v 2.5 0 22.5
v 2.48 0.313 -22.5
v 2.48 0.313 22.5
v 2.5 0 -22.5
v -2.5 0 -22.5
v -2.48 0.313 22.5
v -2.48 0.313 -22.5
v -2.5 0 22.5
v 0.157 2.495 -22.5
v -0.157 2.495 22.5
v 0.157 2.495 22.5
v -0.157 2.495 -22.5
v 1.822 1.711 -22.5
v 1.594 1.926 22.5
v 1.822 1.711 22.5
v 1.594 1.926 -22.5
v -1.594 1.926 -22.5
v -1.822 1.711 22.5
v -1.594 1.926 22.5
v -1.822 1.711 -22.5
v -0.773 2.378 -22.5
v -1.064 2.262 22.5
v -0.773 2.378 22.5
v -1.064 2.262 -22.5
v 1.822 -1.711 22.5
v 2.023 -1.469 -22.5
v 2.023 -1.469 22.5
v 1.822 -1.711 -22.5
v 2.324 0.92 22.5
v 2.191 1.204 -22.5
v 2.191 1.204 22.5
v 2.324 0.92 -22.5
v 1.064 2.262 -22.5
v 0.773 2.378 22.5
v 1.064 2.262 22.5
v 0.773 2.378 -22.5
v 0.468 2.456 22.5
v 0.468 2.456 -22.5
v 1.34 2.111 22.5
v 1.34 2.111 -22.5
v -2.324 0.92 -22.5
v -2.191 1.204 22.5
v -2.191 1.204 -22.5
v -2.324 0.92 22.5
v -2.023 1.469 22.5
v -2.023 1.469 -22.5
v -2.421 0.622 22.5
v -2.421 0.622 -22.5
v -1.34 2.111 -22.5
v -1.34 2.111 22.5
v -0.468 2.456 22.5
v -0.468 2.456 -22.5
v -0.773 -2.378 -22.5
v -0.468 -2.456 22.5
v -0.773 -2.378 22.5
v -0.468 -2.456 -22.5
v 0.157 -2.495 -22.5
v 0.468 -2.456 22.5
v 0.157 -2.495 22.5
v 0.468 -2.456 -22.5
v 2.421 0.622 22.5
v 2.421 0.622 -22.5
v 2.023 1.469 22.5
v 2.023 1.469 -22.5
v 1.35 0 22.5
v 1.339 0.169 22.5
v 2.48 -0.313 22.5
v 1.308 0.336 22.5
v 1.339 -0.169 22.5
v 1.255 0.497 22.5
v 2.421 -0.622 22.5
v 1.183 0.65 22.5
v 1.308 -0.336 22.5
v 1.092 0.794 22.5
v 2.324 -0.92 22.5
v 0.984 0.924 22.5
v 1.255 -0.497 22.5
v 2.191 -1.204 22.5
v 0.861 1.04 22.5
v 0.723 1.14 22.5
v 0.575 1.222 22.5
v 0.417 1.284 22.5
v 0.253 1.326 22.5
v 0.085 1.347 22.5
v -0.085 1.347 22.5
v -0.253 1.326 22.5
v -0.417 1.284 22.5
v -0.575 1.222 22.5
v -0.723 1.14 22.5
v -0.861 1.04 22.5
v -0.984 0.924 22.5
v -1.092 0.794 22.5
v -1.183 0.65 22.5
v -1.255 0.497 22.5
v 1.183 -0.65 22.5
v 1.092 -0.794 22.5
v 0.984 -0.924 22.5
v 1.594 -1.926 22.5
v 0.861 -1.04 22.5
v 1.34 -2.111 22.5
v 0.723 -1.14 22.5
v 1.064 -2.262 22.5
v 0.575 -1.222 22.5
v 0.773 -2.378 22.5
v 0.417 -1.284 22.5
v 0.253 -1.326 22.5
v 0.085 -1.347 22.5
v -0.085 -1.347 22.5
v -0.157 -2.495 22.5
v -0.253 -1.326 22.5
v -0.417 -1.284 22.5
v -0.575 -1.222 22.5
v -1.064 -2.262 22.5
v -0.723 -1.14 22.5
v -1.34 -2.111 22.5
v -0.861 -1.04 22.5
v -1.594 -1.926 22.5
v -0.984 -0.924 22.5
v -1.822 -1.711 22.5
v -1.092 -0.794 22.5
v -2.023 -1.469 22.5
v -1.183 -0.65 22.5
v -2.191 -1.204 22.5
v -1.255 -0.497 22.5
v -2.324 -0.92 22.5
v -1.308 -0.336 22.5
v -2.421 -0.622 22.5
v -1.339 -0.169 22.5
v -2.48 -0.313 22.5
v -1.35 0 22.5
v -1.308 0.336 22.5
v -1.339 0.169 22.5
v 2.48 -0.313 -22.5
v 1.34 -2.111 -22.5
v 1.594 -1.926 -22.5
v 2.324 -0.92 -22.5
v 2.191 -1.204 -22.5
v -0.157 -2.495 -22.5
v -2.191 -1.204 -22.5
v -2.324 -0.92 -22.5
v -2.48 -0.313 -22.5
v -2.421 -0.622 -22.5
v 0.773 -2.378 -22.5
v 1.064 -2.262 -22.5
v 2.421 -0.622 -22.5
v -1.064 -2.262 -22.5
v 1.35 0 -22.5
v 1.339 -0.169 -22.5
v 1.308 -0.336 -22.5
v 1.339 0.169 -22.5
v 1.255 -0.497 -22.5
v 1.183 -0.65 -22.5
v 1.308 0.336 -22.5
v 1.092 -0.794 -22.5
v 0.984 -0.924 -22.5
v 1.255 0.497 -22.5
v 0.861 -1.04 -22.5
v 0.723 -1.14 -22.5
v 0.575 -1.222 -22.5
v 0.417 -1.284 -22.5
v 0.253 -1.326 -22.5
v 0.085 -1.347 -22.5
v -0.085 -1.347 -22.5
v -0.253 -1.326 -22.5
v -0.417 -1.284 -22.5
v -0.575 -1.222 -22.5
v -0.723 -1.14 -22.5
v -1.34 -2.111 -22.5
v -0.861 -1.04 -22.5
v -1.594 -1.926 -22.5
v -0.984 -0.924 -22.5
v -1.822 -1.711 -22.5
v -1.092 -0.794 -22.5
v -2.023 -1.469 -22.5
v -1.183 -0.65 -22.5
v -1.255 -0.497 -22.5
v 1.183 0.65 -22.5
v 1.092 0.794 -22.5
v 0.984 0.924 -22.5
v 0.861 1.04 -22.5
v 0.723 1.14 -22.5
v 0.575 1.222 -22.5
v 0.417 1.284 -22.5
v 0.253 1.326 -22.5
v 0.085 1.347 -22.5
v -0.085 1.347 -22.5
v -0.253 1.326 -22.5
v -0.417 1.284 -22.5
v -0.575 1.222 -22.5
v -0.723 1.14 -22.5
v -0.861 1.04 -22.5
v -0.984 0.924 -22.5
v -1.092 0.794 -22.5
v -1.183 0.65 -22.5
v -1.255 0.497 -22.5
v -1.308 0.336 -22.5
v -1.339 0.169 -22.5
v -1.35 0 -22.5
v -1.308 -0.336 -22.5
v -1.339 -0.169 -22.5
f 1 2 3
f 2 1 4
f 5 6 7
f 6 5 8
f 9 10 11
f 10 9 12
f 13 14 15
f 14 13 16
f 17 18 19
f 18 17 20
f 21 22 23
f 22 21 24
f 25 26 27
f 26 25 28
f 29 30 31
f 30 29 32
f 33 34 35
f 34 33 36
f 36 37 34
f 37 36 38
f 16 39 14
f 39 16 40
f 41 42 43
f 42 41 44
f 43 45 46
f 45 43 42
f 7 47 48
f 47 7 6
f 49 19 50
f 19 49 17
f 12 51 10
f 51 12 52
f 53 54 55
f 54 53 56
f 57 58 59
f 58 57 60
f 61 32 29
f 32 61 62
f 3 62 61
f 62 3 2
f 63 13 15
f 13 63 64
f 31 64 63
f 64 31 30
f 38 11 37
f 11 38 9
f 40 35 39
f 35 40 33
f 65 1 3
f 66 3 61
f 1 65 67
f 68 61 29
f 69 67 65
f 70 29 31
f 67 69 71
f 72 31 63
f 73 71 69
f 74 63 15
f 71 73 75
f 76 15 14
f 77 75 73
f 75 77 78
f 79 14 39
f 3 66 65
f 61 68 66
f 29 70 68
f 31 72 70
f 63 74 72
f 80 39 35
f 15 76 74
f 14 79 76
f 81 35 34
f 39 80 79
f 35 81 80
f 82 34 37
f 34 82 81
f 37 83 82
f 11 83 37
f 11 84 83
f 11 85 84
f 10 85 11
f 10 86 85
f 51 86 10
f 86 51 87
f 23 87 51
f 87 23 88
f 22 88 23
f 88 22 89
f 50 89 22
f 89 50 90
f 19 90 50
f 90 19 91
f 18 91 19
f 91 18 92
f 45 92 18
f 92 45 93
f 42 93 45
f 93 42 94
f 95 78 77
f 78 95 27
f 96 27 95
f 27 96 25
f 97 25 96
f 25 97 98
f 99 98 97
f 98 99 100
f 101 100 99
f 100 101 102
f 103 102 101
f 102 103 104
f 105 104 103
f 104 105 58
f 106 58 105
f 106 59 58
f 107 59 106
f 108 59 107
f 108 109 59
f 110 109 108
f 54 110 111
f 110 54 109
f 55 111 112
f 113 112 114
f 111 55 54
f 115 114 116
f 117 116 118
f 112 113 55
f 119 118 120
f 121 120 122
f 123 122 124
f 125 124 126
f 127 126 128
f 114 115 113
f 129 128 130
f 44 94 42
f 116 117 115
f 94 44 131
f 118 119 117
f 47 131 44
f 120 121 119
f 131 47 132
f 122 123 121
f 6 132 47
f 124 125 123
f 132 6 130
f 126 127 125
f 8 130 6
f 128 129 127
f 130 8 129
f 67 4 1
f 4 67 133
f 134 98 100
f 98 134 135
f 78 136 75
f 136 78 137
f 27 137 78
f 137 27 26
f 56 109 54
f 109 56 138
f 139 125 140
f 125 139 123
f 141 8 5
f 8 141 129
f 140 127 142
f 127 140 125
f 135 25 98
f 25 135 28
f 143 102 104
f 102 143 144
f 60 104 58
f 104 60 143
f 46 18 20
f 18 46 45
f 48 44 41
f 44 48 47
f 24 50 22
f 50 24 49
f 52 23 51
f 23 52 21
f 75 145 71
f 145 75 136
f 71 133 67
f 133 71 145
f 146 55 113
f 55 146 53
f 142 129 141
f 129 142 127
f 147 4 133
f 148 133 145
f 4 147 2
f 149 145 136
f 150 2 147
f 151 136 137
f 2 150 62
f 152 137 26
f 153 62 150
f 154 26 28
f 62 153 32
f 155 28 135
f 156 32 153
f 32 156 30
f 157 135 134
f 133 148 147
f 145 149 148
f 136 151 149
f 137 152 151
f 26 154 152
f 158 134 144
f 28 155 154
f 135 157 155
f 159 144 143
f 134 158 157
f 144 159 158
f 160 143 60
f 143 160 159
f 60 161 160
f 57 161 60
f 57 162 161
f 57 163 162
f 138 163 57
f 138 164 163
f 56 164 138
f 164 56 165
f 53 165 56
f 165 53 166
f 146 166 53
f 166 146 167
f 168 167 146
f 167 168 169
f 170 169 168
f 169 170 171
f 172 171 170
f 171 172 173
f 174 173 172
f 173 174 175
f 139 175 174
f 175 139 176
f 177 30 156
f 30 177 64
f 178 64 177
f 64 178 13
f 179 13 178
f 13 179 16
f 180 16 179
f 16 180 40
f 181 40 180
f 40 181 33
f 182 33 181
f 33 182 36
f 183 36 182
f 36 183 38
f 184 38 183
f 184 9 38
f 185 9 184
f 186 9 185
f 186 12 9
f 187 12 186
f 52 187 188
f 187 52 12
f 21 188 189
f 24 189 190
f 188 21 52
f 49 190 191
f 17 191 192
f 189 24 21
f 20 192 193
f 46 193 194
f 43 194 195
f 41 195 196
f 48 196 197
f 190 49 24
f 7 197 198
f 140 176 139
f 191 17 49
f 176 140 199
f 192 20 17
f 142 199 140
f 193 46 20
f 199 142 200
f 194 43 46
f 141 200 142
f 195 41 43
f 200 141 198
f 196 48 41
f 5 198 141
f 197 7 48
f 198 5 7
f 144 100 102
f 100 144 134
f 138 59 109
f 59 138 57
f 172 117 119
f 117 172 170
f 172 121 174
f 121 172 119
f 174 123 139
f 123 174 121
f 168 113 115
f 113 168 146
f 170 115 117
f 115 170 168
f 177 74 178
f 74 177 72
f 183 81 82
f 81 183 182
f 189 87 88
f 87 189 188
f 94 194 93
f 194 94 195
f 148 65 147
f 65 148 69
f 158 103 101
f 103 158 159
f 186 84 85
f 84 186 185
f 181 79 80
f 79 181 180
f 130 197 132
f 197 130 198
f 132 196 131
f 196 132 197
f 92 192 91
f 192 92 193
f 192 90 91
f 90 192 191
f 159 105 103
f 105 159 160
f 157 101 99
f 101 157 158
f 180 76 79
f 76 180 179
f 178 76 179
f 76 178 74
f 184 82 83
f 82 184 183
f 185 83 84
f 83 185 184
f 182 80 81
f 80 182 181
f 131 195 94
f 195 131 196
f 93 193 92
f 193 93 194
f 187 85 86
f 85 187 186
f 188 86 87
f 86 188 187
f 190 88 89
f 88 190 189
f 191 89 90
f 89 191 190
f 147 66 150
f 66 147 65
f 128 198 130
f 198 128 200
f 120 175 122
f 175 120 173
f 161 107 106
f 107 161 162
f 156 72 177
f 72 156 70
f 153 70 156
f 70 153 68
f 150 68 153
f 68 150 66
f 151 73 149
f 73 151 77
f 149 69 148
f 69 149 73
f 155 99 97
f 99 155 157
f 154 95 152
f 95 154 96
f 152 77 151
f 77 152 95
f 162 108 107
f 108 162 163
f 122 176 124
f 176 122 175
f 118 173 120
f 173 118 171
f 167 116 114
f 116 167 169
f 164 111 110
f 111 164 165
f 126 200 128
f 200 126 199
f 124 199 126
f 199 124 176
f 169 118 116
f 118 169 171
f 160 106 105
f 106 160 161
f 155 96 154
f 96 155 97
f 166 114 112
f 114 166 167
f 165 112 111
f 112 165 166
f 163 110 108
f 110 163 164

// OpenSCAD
$fn = 50;


difference() {
	union() {
		translate(v = [0, 0, -22.5000000000]) {
			cylinder(h = 45, r = 2.5000000000);
		}
	}
	union() {
		translate(v = [0, 0, -100.0000000000]) {
			cylinder(h = 200, r = 1.3500000000);
		}
	}
}
